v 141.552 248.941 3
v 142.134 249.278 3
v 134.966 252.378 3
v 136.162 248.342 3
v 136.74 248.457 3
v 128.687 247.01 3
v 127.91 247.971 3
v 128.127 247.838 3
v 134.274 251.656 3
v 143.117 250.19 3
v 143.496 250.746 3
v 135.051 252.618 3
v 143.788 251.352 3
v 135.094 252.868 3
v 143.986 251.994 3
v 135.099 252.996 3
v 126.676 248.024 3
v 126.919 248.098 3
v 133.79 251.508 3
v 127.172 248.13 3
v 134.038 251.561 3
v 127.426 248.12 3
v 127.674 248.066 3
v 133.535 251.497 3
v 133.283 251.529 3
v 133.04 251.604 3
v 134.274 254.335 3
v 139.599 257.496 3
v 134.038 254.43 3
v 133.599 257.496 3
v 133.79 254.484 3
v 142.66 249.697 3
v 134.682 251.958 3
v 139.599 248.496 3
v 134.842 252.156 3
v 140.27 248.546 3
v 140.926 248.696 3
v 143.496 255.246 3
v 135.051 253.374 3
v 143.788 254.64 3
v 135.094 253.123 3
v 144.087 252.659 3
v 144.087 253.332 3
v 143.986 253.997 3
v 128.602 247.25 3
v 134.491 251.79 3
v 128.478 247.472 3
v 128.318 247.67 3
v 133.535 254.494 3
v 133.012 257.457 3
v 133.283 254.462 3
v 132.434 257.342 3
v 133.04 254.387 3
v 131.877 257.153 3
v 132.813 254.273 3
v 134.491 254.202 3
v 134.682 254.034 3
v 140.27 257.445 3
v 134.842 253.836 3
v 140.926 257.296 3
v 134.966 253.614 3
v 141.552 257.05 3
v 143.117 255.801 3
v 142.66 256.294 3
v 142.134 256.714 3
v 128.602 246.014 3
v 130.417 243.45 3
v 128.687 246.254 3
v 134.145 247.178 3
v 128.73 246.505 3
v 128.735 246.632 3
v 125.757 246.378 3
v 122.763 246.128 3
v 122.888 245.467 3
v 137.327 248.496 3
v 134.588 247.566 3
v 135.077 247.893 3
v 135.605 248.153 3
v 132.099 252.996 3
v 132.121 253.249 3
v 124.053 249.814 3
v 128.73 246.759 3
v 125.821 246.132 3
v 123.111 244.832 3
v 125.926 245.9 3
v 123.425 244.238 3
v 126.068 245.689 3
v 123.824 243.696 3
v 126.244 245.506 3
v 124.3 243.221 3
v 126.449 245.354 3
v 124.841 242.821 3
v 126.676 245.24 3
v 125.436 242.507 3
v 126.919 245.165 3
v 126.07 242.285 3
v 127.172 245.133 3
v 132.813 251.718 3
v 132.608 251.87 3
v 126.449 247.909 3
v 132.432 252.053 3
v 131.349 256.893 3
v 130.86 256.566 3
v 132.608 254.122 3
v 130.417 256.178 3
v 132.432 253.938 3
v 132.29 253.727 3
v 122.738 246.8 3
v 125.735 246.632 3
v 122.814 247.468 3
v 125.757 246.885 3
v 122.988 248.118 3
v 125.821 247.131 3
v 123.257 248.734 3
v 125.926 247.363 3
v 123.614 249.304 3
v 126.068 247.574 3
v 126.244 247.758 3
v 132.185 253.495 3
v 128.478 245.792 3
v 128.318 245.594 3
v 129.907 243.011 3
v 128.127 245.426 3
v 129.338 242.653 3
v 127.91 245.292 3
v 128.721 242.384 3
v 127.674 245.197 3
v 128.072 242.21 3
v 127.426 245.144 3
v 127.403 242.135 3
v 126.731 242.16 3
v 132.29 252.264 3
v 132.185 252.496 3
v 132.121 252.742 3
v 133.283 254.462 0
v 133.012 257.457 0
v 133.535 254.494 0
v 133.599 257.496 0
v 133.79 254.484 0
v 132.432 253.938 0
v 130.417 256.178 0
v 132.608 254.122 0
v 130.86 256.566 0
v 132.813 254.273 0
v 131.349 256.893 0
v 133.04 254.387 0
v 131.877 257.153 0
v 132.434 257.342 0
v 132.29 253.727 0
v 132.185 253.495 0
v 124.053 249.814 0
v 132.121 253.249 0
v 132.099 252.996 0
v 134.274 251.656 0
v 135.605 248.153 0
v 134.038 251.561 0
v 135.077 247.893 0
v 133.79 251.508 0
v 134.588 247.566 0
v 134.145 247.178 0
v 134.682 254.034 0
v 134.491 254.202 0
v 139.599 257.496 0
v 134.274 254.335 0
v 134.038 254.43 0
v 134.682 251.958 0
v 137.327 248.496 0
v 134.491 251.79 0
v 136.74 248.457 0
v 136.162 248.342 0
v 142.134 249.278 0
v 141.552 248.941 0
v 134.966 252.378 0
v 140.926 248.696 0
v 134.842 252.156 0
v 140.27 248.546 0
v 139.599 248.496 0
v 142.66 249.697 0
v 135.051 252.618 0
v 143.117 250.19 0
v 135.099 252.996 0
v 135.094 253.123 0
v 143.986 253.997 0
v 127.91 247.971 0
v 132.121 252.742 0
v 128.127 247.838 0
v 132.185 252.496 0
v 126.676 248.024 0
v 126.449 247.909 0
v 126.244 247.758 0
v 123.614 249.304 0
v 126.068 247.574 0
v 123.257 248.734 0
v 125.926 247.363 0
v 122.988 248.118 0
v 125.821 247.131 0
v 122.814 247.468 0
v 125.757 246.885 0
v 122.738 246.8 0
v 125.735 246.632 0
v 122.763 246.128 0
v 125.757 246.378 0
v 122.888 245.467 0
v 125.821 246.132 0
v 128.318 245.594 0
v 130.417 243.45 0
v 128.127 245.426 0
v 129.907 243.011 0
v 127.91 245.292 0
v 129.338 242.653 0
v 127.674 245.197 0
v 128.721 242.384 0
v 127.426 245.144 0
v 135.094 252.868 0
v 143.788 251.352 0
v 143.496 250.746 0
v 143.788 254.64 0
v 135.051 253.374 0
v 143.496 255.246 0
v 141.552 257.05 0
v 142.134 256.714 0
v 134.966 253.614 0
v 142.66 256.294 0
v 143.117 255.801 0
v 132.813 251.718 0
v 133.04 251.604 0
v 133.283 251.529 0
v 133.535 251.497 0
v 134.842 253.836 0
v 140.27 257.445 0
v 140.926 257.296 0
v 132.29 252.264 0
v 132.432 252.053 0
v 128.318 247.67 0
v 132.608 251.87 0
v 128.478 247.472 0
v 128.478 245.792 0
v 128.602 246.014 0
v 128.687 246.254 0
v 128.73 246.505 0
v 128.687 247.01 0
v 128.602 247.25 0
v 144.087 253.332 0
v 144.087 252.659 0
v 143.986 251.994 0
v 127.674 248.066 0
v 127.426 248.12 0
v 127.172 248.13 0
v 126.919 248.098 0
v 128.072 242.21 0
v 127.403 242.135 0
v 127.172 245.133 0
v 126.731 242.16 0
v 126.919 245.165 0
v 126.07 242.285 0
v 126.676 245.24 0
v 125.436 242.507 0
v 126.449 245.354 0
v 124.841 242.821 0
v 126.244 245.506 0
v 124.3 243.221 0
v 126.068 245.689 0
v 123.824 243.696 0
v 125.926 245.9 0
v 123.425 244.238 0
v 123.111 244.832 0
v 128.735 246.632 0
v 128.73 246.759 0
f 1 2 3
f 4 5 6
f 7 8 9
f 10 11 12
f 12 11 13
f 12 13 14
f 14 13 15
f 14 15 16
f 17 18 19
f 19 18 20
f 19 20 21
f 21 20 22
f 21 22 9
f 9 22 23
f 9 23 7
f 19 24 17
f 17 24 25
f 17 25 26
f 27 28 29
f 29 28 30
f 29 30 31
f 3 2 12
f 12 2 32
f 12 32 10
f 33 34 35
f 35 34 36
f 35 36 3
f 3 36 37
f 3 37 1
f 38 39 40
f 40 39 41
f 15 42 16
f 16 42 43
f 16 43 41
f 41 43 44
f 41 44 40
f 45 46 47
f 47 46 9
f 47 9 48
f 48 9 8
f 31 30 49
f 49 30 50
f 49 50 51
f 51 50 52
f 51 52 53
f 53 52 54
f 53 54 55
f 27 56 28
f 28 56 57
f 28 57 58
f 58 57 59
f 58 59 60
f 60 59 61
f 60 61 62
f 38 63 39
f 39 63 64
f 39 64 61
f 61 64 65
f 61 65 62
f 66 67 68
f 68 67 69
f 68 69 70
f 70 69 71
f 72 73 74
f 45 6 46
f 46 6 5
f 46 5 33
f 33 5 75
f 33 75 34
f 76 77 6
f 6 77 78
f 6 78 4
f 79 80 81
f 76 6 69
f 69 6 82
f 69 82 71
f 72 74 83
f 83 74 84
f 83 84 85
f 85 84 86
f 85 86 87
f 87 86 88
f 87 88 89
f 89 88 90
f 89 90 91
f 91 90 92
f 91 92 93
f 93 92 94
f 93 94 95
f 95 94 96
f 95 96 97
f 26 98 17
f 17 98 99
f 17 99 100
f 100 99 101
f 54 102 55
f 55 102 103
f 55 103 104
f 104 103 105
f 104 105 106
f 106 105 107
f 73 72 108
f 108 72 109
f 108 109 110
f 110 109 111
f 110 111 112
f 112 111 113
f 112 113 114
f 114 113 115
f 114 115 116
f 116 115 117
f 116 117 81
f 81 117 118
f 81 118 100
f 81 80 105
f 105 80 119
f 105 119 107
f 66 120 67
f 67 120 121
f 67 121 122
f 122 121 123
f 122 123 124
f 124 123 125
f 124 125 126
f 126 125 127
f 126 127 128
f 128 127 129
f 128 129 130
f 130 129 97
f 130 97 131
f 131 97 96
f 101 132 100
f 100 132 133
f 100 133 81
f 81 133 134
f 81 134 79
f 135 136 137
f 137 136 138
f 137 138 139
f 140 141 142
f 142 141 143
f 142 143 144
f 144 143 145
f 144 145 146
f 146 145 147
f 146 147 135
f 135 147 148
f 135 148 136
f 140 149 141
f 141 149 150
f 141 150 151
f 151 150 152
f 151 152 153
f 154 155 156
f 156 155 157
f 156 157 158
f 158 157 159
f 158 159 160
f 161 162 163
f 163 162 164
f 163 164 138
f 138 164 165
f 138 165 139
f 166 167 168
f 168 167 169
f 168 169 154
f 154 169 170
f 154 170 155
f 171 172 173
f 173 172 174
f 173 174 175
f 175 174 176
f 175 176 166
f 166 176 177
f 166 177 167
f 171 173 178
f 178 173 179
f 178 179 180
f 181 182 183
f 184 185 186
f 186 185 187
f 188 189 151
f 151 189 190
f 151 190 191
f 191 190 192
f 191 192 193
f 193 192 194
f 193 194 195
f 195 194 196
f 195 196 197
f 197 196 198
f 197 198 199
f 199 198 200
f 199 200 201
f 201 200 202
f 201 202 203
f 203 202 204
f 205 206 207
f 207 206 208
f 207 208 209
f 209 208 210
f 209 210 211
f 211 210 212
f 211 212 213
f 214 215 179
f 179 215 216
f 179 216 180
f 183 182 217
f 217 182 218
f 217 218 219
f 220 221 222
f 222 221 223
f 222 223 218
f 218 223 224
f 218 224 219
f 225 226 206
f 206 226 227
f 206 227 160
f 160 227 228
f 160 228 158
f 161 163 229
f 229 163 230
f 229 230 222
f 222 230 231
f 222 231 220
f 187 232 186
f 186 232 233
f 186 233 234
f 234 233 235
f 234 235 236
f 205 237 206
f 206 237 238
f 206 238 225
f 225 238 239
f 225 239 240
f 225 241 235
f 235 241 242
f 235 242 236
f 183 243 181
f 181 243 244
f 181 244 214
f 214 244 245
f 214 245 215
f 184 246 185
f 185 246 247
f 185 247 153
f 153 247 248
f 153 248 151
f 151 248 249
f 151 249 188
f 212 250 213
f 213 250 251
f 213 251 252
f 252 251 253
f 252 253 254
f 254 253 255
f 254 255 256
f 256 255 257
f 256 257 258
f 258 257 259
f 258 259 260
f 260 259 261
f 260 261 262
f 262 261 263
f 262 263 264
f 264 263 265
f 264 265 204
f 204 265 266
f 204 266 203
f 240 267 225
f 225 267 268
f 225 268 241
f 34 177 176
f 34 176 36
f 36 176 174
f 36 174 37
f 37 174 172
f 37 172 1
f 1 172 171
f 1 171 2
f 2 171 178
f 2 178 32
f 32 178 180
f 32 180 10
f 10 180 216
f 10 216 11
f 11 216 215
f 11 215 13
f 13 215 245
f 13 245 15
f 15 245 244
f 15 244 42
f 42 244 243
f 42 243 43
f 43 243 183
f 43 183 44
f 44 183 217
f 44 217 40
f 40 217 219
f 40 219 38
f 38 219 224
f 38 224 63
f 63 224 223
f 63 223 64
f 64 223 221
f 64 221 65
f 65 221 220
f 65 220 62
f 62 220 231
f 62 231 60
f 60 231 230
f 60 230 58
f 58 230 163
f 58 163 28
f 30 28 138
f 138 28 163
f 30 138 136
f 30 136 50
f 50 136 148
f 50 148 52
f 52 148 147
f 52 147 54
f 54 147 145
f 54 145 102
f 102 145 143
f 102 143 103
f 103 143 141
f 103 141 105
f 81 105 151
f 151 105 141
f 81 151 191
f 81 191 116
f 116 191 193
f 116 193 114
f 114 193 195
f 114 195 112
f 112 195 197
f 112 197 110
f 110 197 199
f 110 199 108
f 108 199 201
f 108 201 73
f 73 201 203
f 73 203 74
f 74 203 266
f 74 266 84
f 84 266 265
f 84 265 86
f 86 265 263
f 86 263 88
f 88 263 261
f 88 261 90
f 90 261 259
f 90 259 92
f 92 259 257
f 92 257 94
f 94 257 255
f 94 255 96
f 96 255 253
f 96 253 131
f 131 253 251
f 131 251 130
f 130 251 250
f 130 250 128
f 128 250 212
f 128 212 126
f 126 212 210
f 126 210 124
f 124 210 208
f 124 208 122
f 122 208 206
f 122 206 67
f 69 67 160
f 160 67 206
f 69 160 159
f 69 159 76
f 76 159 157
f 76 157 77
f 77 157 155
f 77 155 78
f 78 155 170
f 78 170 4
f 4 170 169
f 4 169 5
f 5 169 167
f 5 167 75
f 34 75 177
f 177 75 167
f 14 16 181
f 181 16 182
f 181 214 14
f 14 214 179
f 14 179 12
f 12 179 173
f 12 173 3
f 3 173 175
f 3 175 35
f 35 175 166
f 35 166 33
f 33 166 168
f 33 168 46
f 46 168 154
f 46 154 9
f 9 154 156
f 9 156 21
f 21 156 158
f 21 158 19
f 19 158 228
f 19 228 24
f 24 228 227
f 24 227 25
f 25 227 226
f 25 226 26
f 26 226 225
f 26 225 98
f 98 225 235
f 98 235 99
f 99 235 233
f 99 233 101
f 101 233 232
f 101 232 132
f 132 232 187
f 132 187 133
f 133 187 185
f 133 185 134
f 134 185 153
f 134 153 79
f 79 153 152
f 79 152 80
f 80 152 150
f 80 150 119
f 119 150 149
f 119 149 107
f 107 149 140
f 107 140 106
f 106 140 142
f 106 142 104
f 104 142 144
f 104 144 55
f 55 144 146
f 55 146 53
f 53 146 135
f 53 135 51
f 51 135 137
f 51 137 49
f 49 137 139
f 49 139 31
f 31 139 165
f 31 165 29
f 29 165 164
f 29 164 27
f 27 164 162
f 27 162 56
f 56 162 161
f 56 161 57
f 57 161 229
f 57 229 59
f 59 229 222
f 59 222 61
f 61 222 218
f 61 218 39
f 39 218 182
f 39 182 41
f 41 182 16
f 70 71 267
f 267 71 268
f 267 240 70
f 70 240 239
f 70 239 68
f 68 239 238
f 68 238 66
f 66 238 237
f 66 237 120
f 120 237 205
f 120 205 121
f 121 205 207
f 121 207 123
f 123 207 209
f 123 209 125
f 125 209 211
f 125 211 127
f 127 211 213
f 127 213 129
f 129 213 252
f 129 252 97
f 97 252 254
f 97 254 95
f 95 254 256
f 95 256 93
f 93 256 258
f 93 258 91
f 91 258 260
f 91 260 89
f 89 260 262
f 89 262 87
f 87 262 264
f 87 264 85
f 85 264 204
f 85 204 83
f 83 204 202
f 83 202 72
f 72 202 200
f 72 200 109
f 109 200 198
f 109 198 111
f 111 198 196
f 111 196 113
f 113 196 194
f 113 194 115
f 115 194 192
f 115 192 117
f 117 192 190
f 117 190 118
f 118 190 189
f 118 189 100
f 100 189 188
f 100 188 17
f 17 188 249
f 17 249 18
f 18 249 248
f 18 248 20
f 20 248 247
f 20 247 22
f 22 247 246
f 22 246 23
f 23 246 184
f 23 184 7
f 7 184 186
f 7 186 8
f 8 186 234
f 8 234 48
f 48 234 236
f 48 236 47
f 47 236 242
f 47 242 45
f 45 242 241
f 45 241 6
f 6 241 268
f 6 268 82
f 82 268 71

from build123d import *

# Parameters (mm, degrees)
MODEL_R                 = 1.5
SALIENTE_EXTRUIR1_DEPTH = 3


with BuildPart() as part:
    # Model → Saliente-Extruir1 (new body)
    with BuildSketch(Plane.XY):
        with BuildLine():
            Line((139.599121875, 257.495671711), (133.599121875, 257.495671711))
            ThreePointArc((133.599121875, 257.495671711), (131.87704643, 257.153129607), (130.41714136, 256.177652227))
            Line((130.41714136, 256.177652227), (124.053180329, 249.813691196))
            ThreePointArc((124.053180329, 249.813691196), (124.053180329, 243.449730165), (130.41714136, 243.449730165))
            Line((130.41714136, 243.449730165), (134.145063421, 247.177652226))
            ThreePointArc((134.145063421, 247.177652226), (135.604968491, 248.153129607), (137.327043937, 248.495671711))
            Line((137.327043937, 248.495671711), (138.099121875, 248.495671711))
            Line((138.099121875, 248.495671711), (139.599121875, 248.495671711))
            ThreePointArc((139.599121875, 248.495671711), (144.099121875, 252.995671711), (139.599121875, 257.495671711))
        make_face()
        with Locations((133.599121875, 252.995671711)):
            Circle(MODEL_R, mode=Mode.SUBTRACT)
        with Locations((127.235160845, 246.631710681)):
            Circle(MODEL_R, mode=Mode.SUBTRACT)
    extrude(amount=SALIENTE_EXTRUIR1_DEPTH)


solid = part.part
